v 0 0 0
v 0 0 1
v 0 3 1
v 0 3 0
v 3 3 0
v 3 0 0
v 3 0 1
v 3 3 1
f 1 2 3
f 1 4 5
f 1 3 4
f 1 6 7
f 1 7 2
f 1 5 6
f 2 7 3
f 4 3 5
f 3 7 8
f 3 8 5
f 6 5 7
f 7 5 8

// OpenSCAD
/* Warning, this is a very basic generator with a lot of approximation 
input data : [VQFN, QVX, 3x3x1.0mm, 16, , A, C04-00196A]
generated by com.zoubworld.electronics.cad.model3d.Basic
Date : Sun Feb 15 10:50:48 CET 2026
*/

//body
color("black")
translate([0,0,0])
cube([3.0,3.0,1.0], center=false);
